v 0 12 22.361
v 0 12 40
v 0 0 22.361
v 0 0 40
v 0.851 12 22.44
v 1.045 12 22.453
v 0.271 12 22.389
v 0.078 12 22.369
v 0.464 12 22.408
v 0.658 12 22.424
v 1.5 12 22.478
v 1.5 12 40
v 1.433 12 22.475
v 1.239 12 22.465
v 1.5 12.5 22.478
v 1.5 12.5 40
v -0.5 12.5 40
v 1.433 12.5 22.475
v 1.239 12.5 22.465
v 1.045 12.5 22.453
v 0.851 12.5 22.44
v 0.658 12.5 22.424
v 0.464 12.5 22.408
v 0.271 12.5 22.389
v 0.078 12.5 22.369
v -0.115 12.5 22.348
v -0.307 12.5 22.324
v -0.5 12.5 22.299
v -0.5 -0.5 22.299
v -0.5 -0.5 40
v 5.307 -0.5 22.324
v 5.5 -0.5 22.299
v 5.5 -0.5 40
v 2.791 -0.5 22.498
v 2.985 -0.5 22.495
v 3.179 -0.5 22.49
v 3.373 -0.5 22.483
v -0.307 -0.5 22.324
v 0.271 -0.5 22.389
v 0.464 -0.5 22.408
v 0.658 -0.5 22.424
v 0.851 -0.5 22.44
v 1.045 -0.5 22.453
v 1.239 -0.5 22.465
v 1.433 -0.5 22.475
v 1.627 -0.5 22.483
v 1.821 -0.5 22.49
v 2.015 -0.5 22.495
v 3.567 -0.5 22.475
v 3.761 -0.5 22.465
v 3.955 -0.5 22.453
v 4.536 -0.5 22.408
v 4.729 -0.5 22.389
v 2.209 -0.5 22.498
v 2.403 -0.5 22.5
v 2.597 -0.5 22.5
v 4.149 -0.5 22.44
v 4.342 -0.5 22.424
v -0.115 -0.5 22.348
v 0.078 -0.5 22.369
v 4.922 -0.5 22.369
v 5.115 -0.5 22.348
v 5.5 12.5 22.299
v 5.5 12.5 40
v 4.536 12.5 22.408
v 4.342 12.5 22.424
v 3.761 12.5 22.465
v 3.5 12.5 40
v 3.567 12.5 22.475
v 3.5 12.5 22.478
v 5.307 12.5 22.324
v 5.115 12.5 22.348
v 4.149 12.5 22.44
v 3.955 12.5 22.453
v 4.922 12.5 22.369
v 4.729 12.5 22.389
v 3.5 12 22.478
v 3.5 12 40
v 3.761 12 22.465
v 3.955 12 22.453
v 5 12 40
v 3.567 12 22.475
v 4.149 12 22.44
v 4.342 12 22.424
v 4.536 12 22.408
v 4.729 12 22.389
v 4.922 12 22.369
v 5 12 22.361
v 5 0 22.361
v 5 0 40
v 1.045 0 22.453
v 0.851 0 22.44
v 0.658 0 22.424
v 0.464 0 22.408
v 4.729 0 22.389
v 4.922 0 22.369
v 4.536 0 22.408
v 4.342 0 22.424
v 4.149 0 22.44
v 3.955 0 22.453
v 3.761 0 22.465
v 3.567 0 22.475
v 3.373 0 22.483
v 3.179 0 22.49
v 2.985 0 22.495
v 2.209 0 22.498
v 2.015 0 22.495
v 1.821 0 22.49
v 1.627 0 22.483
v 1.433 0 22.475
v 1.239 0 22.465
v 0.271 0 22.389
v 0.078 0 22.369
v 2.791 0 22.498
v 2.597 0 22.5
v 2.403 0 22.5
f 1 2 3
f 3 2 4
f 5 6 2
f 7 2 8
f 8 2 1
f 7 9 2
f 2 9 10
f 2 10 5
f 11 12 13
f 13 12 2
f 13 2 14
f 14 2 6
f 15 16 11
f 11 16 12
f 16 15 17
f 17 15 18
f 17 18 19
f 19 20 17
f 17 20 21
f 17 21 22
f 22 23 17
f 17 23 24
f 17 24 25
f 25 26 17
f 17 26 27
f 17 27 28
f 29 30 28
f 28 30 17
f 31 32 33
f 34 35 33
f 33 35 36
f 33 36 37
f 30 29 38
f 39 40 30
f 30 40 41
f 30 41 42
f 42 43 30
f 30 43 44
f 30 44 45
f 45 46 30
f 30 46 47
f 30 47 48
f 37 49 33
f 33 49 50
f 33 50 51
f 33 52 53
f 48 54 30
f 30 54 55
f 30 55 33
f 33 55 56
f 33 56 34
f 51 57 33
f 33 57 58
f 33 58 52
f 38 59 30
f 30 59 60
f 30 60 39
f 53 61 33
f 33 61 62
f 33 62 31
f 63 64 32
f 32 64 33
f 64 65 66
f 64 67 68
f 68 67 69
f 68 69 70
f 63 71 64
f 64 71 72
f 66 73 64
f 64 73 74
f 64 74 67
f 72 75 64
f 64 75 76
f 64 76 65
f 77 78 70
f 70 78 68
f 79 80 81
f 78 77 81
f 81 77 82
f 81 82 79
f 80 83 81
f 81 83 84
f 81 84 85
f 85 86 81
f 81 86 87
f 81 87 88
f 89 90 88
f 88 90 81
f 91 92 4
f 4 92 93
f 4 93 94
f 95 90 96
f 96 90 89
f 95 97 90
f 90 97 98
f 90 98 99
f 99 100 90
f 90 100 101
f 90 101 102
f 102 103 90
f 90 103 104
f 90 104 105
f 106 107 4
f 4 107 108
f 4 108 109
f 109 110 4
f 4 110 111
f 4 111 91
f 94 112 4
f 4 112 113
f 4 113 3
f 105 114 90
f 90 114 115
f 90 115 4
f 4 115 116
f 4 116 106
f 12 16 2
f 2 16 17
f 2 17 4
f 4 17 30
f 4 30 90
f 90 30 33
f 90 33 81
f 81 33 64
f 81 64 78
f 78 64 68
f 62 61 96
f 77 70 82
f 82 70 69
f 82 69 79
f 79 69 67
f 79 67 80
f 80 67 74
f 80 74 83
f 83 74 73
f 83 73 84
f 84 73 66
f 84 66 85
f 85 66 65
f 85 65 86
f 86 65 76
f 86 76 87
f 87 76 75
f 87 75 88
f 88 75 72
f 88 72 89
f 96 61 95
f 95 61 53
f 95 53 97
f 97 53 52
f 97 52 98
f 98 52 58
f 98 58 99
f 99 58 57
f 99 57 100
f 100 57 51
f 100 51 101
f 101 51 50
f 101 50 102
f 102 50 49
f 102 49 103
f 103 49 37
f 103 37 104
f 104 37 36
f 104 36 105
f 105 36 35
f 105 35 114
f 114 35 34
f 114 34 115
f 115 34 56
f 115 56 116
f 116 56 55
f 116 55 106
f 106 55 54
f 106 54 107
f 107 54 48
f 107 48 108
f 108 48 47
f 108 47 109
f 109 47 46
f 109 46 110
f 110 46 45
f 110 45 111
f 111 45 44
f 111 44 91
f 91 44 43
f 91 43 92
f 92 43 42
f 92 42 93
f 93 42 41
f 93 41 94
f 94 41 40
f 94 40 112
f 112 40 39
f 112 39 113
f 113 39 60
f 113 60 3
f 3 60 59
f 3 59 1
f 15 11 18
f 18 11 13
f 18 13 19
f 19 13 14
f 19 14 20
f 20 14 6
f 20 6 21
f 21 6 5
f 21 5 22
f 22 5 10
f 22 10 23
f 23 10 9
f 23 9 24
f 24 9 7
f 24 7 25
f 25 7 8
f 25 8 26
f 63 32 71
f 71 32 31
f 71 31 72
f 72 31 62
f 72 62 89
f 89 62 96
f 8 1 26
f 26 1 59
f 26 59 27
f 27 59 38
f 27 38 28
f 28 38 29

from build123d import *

# Parameters (mm, degrees)
EXTRUDE_1_DEPTH     = 40
SKETCH_2_R          = 22.5
CUT_EXTRUDE_1_DEPTH = 40


with BuildPart() as part:
    # ｽｹｯﾁ1 → ﾎﾞｽ - 押し出し1 (new body)
    with BuildSketch(Plane.XY):
        Polygon((0, 0), (5, 0), (5, 12), (3.5, 12), (3.5, 12.5), (5.5, 12.5), (5.5, 12), (5.5, -0.5), (-0.5, -0.5), (-0.5, 12), (-0.5, 12.5), (1.5, 12.5), (1.5, 12), (0, 12), align=None)
    extrude(amount=EXTRUDE_1_DEPTH)

    # ｽｹｯﾁ2 → ｶｯﾄ - 押し出し1 (cut)
    with BuildSketch(Plane.XZ.offset(0.5)):
        with Locations((2.5, 0)):
            Circle(SKETCH_2_R)
    extrude(amount=-CUT_EXTRUDE_1_DEPTH, mode=Mode.SUBTRACT)


solid = part.part
